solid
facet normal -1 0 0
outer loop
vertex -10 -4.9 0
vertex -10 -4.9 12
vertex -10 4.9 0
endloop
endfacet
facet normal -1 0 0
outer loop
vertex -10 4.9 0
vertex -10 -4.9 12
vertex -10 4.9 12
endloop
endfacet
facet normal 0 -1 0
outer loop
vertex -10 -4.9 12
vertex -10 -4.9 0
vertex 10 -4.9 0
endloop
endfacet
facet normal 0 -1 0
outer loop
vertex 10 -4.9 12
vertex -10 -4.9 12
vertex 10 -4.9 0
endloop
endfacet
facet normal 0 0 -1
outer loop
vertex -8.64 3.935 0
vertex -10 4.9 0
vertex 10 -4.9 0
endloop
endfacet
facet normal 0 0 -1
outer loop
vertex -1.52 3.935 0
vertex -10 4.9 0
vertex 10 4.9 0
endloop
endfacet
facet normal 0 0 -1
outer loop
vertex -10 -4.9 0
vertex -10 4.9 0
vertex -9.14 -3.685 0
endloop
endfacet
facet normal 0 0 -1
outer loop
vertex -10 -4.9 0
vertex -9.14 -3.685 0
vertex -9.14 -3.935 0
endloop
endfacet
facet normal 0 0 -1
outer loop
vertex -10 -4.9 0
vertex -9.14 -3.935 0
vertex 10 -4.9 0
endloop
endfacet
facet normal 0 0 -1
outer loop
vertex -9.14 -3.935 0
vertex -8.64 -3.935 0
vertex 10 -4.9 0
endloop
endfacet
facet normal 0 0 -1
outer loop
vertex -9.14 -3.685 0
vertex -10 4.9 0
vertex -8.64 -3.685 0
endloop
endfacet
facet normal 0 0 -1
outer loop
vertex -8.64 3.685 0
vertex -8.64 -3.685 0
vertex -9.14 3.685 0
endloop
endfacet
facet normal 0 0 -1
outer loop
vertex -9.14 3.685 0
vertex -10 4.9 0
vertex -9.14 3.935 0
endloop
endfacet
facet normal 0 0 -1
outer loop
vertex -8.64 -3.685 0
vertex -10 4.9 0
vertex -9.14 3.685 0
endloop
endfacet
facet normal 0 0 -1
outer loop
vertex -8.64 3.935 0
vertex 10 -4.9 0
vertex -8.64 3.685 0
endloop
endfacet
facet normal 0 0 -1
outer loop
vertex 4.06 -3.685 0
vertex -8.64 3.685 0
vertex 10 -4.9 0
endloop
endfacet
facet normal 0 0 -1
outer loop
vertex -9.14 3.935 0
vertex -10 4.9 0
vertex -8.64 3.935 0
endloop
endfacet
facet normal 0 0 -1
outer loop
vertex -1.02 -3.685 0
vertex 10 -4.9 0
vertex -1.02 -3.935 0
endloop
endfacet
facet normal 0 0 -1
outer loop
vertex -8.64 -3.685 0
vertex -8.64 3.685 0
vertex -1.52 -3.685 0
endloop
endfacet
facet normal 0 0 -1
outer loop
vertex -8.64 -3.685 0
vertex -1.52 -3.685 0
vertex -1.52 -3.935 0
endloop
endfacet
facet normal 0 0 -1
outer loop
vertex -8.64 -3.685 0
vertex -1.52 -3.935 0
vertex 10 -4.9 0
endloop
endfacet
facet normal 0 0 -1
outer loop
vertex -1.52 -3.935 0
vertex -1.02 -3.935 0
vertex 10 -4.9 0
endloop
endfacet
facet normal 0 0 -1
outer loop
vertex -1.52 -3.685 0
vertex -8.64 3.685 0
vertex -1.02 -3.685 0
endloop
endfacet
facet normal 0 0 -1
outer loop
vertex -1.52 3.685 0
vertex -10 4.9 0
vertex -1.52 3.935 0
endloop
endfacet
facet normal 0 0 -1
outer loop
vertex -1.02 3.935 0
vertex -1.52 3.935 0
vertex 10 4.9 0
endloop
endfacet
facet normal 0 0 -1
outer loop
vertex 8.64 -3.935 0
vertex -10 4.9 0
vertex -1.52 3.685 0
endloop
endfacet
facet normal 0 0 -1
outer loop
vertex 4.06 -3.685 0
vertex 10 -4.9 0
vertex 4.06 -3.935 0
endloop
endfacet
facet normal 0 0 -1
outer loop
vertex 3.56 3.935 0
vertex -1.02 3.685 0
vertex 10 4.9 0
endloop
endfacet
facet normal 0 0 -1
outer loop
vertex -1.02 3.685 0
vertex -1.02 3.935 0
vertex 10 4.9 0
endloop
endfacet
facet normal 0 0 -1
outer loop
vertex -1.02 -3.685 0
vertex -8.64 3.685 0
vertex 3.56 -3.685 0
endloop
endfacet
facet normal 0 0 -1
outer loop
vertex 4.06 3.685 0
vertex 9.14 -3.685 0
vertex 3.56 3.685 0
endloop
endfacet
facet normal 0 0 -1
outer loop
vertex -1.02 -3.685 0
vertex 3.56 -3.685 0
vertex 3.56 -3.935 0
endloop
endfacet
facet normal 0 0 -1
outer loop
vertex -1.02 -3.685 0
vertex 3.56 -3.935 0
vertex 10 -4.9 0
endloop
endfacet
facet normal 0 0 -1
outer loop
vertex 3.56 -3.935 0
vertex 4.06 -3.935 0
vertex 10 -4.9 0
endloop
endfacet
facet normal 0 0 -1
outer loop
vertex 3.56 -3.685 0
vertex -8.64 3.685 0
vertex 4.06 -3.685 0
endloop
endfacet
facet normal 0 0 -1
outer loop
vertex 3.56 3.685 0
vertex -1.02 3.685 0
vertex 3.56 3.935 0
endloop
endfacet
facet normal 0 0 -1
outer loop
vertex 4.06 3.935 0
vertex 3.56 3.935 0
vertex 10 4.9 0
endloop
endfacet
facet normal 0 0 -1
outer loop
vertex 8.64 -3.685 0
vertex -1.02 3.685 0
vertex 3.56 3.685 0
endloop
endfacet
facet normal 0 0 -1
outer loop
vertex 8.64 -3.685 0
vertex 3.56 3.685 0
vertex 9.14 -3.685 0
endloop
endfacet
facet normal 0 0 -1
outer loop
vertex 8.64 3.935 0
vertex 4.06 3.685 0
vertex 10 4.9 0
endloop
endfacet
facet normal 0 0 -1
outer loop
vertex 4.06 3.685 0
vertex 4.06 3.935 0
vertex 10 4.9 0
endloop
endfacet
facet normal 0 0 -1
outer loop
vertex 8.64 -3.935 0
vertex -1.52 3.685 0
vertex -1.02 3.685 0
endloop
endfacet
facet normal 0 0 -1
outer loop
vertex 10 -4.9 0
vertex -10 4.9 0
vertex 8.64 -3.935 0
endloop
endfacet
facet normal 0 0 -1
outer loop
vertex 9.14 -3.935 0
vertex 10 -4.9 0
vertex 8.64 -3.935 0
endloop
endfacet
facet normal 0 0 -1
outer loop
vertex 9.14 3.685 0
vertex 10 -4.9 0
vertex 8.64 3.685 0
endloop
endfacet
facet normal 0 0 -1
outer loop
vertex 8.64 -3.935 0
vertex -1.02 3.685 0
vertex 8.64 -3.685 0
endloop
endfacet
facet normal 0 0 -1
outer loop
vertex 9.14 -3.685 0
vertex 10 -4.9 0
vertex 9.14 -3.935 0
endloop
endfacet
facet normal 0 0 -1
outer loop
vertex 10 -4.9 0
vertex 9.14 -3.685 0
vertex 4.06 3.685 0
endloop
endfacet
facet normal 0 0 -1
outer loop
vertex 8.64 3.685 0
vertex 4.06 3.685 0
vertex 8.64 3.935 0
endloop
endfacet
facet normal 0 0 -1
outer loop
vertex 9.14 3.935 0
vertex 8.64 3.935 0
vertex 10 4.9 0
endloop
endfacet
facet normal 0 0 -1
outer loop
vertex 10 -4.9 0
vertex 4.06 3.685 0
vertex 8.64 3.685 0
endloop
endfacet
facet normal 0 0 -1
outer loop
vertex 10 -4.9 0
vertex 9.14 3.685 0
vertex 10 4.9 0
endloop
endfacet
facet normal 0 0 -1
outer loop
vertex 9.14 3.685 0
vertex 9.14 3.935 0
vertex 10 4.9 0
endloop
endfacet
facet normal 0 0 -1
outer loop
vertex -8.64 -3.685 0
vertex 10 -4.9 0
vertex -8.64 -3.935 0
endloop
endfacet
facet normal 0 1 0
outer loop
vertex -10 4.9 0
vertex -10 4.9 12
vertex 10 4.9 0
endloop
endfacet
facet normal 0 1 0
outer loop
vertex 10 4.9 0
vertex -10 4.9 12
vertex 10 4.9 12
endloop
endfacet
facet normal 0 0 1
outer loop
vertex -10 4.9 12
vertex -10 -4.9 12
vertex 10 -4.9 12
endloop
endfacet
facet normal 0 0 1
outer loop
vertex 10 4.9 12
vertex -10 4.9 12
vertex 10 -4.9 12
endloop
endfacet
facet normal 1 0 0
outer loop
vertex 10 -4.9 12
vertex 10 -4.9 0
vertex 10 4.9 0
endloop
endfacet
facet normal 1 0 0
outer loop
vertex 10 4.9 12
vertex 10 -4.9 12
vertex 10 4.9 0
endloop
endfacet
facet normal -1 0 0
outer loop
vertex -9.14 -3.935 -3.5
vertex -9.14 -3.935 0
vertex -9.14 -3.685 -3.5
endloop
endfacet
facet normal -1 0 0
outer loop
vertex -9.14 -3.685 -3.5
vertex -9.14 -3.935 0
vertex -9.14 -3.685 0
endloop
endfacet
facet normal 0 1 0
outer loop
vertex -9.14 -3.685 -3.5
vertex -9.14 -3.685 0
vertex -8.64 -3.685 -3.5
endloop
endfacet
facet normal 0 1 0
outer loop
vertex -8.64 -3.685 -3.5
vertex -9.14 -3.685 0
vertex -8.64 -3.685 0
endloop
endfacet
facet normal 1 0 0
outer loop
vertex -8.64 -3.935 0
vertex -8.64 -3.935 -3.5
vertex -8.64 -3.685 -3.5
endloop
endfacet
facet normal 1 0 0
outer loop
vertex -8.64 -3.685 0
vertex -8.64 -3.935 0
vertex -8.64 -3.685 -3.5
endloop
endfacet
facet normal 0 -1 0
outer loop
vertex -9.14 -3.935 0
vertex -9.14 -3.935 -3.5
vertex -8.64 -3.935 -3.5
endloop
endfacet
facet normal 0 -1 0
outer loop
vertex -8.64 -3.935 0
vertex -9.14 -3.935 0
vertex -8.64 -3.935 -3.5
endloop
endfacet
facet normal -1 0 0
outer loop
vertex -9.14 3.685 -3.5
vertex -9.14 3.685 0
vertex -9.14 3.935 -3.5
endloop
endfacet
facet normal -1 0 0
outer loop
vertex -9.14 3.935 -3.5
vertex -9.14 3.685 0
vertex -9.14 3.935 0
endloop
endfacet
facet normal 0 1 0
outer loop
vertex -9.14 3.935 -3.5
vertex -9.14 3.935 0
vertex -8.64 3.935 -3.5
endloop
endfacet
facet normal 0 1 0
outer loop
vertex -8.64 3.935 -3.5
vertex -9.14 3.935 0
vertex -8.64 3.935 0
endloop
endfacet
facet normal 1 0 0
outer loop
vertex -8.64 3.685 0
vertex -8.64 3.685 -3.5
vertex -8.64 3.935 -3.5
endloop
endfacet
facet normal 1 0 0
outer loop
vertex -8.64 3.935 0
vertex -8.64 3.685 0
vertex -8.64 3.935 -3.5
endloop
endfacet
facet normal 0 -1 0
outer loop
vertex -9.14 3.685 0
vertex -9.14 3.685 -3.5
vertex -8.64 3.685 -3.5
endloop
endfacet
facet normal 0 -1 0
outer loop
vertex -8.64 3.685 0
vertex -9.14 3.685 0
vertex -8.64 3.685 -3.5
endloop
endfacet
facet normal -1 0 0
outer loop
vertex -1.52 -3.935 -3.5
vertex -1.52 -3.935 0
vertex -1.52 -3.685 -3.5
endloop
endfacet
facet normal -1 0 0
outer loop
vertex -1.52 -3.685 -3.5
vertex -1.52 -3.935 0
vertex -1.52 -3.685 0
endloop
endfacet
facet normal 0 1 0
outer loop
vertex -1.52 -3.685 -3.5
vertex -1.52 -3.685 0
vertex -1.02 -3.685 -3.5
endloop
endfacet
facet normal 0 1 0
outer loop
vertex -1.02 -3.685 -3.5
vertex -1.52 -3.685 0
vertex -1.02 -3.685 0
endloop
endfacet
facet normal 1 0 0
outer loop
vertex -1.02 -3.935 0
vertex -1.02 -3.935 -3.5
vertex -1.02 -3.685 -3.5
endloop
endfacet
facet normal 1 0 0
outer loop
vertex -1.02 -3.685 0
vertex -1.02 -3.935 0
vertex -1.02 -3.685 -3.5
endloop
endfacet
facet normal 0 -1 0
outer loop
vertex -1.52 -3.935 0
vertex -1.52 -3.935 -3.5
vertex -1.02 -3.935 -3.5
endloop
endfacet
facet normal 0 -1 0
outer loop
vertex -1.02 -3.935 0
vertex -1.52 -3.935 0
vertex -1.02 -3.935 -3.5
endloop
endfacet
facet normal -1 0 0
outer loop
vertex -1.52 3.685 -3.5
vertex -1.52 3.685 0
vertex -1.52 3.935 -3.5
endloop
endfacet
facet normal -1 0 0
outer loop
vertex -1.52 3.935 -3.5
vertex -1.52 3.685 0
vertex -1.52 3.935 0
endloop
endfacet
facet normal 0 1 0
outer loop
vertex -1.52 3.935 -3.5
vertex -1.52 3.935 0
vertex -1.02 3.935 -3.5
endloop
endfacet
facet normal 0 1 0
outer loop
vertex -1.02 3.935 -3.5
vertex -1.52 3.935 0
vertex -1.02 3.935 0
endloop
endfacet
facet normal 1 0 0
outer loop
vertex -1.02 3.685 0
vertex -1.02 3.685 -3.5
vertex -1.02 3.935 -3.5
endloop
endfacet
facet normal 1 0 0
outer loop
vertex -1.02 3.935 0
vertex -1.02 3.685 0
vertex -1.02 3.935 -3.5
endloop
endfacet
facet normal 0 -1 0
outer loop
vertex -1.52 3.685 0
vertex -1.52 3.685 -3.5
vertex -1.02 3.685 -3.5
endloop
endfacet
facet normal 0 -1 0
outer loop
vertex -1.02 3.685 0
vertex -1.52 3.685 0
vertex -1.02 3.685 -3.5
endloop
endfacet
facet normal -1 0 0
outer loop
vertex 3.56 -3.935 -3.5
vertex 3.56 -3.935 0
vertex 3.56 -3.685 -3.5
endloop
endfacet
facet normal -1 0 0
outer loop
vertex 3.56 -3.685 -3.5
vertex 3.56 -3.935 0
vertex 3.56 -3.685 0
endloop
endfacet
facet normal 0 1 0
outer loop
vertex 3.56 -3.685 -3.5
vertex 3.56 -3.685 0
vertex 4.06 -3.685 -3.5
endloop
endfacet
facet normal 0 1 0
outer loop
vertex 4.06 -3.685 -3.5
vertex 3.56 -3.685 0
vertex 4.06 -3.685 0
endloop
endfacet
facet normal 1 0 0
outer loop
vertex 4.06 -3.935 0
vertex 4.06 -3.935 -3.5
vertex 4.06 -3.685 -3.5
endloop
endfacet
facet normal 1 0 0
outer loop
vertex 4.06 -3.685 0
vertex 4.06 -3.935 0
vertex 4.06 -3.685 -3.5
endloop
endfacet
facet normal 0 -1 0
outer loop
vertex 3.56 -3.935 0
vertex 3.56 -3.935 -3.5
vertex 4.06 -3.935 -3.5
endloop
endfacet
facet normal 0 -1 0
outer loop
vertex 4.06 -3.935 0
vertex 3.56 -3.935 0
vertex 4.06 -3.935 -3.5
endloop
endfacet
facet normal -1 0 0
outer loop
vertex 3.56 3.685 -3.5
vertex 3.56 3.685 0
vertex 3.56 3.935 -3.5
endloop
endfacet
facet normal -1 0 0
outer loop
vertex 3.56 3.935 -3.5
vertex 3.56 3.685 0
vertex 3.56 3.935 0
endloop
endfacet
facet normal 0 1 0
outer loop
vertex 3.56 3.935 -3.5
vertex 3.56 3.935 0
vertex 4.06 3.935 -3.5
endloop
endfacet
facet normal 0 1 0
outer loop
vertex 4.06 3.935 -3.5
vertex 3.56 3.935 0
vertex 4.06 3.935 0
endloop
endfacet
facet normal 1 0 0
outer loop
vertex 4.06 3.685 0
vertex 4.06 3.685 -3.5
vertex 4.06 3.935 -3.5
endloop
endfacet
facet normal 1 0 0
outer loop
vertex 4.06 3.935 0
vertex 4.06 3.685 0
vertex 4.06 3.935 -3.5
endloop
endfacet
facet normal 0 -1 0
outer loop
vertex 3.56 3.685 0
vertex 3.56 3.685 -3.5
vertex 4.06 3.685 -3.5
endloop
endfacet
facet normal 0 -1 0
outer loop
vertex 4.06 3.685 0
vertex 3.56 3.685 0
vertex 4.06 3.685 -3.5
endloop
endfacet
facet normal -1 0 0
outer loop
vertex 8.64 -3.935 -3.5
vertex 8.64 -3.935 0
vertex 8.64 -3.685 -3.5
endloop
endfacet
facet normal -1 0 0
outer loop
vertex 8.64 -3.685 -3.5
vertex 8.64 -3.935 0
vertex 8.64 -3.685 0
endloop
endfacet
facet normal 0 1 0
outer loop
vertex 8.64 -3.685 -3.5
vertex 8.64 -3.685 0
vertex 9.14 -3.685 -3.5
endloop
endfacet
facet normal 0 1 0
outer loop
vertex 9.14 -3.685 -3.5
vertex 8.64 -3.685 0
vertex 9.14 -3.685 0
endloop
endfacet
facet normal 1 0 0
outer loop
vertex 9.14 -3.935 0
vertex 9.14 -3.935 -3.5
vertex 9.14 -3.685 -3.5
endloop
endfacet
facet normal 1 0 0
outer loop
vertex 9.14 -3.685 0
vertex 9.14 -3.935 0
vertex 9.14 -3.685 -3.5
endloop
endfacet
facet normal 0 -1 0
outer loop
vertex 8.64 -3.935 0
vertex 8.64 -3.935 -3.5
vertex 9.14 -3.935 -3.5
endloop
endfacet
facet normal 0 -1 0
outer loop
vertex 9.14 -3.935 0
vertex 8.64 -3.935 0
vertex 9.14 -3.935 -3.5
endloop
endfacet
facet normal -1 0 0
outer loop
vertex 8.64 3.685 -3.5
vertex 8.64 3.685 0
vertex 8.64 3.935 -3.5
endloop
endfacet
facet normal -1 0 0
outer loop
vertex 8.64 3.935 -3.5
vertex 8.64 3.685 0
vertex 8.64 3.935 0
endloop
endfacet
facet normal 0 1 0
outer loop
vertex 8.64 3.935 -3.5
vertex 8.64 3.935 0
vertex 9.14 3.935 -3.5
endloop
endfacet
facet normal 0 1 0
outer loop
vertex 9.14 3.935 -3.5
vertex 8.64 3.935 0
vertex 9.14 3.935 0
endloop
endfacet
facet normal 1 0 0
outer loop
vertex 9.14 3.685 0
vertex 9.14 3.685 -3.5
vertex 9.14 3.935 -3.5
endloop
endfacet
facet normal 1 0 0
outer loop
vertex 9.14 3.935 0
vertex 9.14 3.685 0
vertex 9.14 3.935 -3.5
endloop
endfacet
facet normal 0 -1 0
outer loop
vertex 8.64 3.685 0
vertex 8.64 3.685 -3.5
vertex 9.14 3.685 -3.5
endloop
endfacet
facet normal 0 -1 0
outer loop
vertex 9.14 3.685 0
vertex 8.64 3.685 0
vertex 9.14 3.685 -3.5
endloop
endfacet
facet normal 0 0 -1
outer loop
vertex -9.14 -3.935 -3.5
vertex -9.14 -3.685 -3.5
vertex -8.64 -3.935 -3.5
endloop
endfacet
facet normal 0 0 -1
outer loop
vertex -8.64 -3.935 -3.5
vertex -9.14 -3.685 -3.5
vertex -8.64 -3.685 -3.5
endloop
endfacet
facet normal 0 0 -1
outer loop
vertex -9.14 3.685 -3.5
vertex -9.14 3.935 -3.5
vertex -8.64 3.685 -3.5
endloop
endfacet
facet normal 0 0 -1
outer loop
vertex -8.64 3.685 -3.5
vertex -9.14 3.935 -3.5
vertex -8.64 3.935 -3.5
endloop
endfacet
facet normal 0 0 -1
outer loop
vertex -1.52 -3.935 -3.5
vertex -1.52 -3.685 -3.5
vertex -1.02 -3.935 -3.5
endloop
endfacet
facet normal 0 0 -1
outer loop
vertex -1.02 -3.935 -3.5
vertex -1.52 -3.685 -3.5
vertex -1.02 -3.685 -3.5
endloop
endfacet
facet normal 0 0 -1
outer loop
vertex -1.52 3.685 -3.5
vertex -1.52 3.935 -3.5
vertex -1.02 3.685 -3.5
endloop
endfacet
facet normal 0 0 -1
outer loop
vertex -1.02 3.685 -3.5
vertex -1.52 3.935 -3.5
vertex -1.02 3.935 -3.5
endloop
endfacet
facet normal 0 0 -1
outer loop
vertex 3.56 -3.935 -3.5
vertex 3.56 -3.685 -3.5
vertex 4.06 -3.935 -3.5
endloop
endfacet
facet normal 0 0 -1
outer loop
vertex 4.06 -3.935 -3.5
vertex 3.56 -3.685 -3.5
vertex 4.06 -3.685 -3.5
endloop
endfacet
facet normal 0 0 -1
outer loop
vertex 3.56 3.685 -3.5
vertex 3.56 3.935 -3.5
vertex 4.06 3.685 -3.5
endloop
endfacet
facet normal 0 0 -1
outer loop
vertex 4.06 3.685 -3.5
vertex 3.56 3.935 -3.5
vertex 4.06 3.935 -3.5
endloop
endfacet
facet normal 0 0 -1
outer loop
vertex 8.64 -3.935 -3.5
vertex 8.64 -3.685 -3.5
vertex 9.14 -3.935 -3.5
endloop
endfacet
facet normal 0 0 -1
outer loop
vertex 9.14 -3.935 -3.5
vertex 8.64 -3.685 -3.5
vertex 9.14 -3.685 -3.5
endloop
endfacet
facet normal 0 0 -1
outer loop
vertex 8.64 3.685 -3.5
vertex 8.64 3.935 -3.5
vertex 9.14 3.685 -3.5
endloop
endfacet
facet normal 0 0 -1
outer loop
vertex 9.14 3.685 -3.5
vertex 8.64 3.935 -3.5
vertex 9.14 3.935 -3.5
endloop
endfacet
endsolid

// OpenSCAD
module pin(x, y) {
	translate([x, y, -1.75]) {
		cube(size = [0.5, 0.25, 3.5], center = true);
	}
}

translate([0,0,6]) {
	cube(size = [20, 9.8, 12], center = true);
}

pin(-8.89, 3.81);
pin(-8.89, -3.81);
pin(-1.27, 3.81);
pin(-1.27, -3.81);
pin(3.81, 3.81);
pin(3.81, -3.81);
pin(8.89, 3.81);
pin(8.89, -3.81);
